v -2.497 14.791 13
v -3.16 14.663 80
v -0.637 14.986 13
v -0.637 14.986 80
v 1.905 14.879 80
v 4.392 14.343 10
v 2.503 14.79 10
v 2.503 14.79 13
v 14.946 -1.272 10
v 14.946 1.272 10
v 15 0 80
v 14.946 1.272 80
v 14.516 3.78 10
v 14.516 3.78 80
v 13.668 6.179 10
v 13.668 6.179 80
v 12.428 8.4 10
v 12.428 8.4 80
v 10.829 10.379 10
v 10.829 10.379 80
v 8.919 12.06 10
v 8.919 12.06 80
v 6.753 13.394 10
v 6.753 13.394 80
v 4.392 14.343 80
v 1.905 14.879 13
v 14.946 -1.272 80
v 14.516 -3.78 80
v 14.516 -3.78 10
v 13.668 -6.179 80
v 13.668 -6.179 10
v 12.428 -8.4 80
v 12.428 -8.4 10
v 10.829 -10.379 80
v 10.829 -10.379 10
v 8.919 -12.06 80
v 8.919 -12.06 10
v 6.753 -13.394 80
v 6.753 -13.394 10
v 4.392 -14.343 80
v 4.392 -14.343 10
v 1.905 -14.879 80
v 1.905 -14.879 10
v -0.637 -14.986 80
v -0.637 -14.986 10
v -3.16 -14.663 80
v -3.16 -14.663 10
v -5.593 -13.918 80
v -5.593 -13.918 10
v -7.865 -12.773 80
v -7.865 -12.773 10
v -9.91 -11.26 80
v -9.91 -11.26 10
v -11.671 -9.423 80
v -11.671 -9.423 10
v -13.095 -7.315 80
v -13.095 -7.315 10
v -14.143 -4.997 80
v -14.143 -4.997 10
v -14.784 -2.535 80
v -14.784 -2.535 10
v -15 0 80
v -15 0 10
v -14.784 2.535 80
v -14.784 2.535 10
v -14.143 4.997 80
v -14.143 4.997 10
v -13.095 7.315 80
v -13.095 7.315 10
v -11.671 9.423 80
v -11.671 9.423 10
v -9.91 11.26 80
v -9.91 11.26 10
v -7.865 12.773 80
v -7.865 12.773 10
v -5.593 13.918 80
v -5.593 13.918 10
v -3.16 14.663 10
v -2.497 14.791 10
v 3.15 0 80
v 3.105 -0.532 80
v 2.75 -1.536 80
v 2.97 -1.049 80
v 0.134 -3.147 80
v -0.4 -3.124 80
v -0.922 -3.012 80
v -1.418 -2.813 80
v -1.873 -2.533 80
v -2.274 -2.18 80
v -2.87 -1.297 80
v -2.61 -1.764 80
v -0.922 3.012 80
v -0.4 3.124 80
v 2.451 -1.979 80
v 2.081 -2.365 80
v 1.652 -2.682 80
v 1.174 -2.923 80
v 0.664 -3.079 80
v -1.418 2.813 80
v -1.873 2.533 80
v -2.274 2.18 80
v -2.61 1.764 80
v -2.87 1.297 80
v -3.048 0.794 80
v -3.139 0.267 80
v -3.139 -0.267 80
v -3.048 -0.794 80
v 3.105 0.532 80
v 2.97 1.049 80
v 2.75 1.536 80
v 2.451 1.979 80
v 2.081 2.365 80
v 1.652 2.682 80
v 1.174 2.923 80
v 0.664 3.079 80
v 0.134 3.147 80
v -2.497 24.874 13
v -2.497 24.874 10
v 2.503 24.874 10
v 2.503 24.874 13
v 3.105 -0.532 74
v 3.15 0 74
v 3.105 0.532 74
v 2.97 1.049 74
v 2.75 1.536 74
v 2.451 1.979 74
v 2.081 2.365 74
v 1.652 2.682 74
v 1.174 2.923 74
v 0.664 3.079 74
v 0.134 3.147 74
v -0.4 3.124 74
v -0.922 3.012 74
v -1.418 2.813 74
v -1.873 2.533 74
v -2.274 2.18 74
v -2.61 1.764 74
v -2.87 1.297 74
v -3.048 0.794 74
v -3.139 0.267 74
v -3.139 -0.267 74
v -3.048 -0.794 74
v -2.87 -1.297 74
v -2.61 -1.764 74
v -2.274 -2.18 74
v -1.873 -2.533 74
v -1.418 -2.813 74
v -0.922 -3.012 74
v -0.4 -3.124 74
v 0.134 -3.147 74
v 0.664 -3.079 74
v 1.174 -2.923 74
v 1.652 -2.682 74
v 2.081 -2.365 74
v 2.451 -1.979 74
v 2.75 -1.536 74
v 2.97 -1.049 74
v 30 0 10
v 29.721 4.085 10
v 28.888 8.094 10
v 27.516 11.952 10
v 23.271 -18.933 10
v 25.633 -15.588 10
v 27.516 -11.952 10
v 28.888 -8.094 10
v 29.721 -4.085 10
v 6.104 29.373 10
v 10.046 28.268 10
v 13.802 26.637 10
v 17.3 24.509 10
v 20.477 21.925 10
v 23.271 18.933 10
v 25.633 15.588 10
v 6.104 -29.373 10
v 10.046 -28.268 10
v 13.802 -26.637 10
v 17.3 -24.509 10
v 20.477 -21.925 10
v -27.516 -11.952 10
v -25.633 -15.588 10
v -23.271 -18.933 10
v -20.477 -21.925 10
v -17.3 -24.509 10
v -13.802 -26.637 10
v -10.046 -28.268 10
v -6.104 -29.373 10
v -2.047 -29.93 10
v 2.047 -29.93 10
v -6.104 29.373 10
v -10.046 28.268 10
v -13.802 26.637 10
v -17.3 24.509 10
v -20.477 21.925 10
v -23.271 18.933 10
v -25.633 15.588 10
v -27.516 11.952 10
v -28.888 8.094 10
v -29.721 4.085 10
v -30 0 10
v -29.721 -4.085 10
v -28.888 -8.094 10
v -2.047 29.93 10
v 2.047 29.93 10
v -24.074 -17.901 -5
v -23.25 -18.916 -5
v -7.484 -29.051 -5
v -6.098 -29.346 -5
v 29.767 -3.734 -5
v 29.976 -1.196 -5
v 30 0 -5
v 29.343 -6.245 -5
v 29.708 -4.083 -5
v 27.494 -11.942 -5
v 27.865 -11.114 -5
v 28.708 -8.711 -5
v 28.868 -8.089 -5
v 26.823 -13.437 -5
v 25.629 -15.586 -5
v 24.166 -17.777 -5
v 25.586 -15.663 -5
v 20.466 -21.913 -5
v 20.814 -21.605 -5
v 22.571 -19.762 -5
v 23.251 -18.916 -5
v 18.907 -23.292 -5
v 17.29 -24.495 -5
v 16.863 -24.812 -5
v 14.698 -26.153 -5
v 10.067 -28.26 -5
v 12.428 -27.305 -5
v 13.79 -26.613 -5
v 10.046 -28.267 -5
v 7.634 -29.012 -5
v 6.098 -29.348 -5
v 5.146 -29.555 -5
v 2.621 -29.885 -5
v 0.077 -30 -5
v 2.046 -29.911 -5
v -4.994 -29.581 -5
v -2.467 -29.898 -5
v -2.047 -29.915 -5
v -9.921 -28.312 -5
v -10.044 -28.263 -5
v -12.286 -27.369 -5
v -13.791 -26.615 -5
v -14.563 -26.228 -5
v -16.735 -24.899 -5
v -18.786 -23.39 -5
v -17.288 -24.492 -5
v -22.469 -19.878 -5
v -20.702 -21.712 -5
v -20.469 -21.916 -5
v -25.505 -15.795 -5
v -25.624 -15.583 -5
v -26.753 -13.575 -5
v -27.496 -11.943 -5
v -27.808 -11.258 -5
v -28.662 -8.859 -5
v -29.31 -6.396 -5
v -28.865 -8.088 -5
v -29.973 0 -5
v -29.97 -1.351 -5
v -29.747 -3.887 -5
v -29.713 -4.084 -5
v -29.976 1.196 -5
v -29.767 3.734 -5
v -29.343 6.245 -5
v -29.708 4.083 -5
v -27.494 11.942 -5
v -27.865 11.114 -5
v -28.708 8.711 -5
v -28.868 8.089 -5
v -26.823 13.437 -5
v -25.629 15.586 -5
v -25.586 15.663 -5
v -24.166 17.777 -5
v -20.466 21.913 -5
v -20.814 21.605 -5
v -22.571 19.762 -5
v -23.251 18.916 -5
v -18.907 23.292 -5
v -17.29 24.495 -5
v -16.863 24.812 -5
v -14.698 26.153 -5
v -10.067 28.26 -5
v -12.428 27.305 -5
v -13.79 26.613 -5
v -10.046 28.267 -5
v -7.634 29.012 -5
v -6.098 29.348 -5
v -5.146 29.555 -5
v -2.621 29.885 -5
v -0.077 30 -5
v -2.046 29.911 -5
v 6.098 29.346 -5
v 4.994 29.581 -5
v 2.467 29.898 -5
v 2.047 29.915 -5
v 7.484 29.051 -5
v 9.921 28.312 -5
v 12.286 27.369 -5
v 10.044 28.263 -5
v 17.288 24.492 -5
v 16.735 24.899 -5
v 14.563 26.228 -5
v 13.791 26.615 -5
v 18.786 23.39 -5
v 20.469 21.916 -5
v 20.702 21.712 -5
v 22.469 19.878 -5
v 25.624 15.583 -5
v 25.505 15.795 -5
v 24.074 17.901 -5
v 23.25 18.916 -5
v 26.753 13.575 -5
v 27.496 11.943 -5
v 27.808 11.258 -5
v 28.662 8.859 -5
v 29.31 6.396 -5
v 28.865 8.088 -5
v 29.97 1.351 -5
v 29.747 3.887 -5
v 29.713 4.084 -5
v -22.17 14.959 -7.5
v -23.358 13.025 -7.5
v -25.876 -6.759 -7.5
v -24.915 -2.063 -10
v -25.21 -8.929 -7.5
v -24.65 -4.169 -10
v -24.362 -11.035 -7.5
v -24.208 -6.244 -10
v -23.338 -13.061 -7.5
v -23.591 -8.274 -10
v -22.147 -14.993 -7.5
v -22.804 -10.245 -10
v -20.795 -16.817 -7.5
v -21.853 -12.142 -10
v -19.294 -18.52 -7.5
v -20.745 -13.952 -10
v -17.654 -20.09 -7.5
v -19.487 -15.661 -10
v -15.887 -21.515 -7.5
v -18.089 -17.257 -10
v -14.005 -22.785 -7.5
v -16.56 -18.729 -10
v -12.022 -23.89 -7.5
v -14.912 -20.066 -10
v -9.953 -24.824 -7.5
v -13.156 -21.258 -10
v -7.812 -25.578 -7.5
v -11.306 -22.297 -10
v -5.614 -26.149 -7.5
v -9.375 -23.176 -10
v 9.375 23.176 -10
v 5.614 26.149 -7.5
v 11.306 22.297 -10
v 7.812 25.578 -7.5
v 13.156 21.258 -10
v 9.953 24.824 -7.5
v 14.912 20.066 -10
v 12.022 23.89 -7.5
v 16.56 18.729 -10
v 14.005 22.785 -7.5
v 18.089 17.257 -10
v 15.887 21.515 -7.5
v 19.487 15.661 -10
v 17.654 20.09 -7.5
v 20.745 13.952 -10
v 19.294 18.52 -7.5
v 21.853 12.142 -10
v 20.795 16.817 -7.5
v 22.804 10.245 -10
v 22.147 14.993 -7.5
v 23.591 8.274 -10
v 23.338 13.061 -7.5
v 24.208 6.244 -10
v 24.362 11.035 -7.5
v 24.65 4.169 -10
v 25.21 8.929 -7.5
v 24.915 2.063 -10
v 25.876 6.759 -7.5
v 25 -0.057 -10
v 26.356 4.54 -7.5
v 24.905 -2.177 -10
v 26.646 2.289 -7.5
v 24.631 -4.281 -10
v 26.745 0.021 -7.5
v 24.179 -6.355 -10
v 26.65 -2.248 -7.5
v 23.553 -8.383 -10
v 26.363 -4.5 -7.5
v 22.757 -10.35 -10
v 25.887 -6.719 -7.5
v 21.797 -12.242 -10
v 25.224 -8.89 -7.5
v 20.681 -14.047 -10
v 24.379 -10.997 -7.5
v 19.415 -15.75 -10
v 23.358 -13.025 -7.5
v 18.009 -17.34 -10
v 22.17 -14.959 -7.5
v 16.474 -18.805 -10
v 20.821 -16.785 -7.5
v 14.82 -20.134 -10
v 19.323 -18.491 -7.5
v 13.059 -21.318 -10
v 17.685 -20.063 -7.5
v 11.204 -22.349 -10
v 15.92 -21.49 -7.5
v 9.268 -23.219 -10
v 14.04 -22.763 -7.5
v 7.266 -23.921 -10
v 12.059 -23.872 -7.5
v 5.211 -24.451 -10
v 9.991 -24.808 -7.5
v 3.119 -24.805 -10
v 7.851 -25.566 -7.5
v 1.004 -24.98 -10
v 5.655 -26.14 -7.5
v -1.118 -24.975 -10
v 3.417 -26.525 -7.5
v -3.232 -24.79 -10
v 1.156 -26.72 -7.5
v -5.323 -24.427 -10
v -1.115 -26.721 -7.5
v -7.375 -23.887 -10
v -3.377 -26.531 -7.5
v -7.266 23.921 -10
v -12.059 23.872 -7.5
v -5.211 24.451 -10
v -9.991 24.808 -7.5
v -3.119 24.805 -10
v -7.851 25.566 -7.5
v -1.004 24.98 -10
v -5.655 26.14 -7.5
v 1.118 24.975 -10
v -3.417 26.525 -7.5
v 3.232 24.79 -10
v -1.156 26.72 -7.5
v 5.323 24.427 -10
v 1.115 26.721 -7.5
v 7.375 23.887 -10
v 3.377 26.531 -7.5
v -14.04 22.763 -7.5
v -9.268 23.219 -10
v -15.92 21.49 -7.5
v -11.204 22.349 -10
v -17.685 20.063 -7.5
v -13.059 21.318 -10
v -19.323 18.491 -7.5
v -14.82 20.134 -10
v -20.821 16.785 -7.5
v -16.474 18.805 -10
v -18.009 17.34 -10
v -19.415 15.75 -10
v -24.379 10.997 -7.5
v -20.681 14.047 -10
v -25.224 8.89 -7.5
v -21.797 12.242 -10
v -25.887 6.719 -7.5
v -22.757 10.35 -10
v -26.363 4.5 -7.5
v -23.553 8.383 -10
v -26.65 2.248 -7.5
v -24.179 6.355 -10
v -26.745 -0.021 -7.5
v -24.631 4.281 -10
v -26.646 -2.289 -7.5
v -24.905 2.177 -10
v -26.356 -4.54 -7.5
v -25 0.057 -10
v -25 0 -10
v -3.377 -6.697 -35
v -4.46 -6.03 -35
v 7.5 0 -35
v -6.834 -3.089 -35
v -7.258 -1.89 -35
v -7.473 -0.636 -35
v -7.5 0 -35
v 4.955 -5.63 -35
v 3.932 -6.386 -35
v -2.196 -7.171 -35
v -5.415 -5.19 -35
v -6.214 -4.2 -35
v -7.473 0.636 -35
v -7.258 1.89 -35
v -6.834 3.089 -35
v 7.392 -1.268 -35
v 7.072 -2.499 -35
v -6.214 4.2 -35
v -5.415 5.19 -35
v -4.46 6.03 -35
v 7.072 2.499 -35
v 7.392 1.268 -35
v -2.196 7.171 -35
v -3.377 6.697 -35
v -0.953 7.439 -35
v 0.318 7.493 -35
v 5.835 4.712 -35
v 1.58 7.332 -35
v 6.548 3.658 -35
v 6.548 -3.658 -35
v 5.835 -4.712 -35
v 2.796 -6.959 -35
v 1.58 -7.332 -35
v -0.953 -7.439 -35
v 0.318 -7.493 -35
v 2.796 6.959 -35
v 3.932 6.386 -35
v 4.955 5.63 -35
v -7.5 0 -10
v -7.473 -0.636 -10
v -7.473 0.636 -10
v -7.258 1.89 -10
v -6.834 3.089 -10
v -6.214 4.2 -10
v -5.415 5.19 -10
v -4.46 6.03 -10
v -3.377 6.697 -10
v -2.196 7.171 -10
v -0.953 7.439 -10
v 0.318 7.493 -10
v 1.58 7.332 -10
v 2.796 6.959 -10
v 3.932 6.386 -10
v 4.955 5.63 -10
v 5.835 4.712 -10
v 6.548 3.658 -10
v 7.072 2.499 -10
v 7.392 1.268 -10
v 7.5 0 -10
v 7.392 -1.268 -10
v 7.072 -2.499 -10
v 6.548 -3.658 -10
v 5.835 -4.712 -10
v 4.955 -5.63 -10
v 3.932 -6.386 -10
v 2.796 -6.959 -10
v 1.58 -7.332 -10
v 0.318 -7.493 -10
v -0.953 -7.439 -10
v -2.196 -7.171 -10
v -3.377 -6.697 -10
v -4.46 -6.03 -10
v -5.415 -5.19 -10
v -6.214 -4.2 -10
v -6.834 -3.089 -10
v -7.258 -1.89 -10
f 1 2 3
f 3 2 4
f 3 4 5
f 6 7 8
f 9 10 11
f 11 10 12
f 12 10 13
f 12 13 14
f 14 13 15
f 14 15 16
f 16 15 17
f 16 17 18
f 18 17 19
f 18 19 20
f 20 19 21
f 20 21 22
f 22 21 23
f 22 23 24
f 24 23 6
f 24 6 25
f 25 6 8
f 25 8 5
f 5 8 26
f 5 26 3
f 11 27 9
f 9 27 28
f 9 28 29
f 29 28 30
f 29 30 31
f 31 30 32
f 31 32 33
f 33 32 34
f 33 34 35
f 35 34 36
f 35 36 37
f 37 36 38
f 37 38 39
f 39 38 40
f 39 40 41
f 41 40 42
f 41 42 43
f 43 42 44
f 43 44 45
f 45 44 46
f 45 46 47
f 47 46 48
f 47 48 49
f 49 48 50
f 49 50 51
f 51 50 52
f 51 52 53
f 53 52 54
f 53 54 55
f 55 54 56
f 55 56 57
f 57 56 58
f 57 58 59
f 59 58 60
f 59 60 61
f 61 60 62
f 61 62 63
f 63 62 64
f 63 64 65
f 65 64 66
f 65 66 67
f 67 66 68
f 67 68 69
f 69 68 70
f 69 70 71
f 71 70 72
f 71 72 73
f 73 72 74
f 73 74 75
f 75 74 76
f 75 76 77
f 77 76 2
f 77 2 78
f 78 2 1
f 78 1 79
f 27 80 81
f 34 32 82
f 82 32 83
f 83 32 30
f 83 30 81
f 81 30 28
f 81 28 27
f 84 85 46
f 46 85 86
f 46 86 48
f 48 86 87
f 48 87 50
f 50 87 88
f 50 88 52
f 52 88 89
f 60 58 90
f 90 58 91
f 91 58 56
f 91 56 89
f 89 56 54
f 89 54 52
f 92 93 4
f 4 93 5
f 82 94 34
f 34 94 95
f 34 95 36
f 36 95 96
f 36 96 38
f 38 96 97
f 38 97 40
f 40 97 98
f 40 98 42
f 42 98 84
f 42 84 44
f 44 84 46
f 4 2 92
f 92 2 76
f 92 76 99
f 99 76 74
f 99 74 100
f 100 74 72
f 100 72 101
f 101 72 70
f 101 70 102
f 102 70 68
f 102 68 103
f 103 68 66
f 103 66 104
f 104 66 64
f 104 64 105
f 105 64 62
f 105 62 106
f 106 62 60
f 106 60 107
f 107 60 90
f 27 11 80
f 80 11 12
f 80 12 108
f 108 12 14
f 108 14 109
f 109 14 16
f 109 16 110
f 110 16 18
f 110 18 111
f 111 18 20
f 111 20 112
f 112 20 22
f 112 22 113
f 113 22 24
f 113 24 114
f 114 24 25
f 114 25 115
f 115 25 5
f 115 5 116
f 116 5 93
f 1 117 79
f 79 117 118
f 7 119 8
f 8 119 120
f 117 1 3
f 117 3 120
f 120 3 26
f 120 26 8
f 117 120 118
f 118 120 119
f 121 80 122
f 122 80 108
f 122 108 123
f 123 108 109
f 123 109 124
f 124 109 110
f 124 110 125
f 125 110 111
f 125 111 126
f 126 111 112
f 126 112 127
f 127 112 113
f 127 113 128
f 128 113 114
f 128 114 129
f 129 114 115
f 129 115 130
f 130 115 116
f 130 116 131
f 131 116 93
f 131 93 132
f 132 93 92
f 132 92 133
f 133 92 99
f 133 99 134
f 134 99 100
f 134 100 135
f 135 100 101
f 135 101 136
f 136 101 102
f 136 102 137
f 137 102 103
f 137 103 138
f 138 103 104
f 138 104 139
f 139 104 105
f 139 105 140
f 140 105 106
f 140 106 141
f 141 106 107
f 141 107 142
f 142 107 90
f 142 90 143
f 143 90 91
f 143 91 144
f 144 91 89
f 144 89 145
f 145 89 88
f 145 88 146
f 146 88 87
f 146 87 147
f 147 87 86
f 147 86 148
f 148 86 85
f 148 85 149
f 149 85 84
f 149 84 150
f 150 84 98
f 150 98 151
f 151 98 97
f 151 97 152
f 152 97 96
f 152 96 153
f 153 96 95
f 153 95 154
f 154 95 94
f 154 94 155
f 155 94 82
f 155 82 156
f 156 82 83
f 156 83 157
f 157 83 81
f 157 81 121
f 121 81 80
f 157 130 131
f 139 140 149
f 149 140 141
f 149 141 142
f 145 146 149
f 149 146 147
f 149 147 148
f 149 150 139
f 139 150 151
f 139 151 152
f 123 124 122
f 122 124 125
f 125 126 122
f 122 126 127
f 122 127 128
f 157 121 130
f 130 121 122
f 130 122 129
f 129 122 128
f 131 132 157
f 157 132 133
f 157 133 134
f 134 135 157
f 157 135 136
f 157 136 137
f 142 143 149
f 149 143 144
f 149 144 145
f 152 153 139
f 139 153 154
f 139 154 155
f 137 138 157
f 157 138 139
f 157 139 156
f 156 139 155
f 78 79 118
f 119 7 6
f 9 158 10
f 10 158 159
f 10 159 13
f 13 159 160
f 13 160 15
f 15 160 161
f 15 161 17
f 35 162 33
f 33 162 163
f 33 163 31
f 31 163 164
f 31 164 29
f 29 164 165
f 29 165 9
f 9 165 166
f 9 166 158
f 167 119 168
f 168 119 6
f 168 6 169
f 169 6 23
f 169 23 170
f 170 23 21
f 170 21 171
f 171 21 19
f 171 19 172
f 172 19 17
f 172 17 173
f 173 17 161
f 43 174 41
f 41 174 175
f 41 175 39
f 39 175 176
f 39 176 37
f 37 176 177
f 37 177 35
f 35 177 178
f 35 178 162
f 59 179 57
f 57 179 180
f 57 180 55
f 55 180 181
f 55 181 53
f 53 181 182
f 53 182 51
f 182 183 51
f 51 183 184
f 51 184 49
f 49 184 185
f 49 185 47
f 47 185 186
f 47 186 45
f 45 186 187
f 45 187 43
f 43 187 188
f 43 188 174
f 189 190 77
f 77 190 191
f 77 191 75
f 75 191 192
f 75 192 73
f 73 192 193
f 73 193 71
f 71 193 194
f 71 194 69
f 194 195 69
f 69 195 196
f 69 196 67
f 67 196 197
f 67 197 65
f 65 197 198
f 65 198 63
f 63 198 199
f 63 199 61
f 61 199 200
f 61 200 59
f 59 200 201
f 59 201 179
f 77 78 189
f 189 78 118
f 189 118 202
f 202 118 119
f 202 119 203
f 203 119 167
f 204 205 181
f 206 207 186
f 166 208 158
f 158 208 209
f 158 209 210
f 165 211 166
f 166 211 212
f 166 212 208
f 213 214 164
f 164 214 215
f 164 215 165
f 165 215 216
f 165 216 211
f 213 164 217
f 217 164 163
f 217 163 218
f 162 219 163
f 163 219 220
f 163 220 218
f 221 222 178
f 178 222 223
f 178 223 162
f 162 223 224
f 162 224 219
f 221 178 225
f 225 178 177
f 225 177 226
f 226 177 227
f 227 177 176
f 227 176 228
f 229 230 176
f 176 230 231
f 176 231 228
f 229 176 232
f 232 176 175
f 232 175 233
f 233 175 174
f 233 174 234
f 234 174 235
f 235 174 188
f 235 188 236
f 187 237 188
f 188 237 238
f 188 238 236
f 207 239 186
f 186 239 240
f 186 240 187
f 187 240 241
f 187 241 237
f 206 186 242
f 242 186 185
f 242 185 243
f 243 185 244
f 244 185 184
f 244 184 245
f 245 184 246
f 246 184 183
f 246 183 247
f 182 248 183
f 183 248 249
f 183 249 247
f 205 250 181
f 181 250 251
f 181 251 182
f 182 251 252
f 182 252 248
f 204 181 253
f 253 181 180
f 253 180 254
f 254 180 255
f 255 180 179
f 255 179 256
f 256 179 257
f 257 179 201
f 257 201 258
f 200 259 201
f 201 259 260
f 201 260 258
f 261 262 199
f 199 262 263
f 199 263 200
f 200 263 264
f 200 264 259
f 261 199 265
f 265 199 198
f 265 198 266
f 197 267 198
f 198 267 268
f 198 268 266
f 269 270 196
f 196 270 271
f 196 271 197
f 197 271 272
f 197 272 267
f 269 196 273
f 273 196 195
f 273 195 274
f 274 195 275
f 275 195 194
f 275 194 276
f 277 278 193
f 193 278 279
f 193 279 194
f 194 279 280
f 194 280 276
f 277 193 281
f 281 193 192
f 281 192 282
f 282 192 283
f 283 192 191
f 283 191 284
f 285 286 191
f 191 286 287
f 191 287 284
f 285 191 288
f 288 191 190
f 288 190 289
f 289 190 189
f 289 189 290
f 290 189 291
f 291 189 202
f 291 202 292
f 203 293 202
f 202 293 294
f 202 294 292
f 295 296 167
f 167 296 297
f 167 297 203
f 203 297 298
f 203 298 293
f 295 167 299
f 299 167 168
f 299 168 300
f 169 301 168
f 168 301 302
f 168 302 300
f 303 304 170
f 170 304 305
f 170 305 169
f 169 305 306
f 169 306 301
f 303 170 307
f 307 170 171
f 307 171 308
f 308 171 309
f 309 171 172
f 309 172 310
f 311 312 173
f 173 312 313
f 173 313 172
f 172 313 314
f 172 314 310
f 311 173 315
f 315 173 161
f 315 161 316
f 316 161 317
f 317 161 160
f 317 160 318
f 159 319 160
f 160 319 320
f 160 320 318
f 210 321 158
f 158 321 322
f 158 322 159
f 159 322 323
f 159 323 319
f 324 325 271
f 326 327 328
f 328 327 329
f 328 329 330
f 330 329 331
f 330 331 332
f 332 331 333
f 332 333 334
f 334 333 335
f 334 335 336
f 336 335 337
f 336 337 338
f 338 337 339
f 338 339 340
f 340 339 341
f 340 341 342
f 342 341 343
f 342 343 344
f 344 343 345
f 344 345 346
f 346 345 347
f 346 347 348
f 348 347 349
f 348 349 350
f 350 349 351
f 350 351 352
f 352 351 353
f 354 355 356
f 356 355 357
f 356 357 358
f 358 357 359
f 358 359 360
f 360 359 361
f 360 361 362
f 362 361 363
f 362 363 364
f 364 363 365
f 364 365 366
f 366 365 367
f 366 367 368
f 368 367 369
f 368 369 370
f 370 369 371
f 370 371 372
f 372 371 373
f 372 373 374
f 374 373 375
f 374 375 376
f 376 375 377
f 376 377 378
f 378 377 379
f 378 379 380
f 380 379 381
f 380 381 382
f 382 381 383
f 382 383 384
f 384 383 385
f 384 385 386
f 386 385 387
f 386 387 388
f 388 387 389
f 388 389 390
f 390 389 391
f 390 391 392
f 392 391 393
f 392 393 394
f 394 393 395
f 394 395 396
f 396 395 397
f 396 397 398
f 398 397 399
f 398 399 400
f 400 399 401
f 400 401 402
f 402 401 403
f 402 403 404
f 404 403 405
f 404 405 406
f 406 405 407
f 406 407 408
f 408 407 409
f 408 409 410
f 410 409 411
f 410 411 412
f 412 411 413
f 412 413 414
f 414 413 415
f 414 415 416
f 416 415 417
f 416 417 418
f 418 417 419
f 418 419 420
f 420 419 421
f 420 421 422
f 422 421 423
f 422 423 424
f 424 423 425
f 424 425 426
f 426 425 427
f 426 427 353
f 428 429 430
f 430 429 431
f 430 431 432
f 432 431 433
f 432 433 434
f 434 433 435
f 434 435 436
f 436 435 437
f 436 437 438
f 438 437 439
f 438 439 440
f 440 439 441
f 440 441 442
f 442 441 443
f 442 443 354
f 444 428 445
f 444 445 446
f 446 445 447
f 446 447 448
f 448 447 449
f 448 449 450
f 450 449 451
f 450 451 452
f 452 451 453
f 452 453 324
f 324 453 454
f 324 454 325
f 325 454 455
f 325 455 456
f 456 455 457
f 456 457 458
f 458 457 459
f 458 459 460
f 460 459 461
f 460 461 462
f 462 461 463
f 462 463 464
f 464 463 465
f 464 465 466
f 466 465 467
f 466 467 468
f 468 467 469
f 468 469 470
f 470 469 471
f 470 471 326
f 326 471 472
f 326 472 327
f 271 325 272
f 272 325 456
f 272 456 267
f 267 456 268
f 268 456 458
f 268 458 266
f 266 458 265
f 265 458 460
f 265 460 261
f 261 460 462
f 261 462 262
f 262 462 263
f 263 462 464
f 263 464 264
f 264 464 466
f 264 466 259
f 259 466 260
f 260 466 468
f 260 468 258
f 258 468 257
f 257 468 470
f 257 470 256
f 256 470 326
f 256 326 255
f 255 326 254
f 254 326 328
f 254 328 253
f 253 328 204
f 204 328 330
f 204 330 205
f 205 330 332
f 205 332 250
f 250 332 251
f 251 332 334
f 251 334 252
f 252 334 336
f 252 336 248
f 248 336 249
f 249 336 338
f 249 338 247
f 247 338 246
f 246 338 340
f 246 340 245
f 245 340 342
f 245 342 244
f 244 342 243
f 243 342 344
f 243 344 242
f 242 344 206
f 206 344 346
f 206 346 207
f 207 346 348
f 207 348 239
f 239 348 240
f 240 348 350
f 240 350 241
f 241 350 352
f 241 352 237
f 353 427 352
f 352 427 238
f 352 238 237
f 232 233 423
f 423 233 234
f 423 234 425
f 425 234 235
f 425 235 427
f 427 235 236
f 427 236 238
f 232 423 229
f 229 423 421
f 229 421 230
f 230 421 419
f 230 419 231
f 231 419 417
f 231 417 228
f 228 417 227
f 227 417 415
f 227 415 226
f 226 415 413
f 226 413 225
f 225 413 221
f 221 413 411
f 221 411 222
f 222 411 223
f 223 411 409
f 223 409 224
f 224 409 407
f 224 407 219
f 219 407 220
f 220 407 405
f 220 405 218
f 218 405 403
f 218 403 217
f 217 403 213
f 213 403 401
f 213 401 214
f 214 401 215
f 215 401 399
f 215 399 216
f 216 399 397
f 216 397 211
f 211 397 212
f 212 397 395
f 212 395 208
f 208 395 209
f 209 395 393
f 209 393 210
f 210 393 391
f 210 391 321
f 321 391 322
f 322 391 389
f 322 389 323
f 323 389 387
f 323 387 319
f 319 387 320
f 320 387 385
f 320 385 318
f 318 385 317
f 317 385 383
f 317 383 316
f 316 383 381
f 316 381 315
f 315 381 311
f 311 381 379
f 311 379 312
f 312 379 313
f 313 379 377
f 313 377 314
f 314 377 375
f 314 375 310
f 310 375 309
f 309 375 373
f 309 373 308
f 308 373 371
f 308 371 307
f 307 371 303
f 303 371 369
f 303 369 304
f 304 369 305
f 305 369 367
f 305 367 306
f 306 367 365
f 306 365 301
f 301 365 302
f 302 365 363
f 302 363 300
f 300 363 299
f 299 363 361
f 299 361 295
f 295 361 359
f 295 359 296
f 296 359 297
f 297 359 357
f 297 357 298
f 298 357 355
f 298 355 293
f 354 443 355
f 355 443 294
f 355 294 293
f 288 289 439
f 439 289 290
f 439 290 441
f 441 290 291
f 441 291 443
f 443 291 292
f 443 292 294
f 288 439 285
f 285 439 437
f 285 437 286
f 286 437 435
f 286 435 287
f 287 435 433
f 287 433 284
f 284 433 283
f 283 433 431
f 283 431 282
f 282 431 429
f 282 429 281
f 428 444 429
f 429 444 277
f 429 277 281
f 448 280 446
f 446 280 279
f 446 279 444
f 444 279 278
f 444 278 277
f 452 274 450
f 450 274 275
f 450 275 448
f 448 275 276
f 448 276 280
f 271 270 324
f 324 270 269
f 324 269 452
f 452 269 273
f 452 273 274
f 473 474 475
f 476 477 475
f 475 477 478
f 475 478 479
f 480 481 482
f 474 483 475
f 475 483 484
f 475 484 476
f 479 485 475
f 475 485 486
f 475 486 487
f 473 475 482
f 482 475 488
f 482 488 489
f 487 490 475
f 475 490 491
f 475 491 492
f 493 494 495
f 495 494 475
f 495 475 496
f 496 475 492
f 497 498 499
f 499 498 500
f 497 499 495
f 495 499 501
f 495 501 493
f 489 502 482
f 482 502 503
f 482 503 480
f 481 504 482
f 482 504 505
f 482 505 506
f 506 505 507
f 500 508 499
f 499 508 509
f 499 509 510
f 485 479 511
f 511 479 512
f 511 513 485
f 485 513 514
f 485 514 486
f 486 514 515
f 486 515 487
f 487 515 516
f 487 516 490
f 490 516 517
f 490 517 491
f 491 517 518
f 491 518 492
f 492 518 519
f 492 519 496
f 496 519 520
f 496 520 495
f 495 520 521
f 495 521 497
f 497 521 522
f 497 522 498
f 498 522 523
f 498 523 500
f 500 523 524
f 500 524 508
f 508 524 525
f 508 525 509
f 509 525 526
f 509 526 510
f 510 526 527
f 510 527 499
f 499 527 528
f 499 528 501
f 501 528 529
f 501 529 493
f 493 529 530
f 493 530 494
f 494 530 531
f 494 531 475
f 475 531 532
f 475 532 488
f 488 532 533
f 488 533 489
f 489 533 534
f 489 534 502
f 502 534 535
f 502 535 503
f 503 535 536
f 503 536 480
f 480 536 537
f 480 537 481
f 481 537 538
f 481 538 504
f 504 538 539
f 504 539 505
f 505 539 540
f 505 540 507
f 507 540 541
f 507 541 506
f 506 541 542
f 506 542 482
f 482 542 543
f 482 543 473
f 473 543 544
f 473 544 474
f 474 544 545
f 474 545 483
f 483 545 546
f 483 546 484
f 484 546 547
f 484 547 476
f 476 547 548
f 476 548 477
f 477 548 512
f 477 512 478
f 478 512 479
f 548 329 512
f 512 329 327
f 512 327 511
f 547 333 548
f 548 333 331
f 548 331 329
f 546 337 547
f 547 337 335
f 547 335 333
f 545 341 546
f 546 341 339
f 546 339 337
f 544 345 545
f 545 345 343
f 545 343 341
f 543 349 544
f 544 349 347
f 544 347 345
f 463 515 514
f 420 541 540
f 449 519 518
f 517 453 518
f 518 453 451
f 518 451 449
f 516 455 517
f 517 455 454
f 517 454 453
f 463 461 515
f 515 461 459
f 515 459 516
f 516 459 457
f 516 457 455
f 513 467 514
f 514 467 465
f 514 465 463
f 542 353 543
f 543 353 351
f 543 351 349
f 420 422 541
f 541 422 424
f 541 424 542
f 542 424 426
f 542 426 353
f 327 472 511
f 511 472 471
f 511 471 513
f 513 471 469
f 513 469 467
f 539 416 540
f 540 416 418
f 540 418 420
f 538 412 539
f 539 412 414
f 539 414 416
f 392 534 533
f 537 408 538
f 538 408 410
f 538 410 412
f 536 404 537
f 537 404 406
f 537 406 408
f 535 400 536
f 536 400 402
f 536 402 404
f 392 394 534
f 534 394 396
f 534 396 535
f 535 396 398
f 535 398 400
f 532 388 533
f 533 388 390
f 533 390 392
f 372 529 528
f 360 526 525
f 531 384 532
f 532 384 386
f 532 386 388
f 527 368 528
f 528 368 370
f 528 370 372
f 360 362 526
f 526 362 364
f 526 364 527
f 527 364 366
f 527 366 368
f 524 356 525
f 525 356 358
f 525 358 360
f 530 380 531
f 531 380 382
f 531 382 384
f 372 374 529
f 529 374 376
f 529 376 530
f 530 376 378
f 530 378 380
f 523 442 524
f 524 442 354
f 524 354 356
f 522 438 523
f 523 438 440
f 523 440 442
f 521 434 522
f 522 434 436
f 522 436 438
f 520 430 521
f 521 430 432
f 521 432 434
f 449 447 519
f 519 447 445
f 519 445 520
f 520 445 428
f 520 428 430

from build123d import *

# Parameters (mm, degrees)
SKETCH1_R           = 15
BOSS_EXTRUDE1_DEPTH = 80
SKETCH1_2_R         = 15
SKETCH2_R           = 25
SKETCH3_R           = 7.5
BOSS_EXTRUDE2_DEPTH = 25
SKETCH4_W           = 5
SKETCH4_H           = 25
BOSS_EXTRUDE3_DEPTH = 3
SKETCH5_R           = 3.15
CUT_EXTRUDE1_DEPTH  = 6
SKETCH6_R           = 30
BOSS_EXTRUDE4_DEPTH = 15


with BuildPart() as part:
    # Sketch1 → Boss-Extrude1 (new body)
    with BuildSketch(Plane.XY):
        Circle(SKETCH1_R)
    extrude(amount=BOSS_EXTRUDE1_DEPTH)

    # Sketch1<2> → Loft1 section 0
    with BuildSketch(Plane.XY):
        Circle(SKETCH1_2_R)
    # Sketch2 → Loft1 section 1
    with BuildSketch(Plane(origin=(0, 0, -10), x_dir=(-1, 0, 0), z_dir=(0, 0, -1))):
        Circle(SKETCH2_R)
    loft()

    # Sketch3 → Boss-Extrude2 (add)
    with BuildSketch(Plane(origin=(0, 0, -10), x_dir=(-1, 0, 0), z_dir=(0, 0, -1))):
        Circle(SKETCH3_R)
    extrude(amount=BOSS_EXTRUDE2_DEPTH)

    # Sketch4 → Boss-Extrude3 (add)
    with BuildSketch(Plane.XY.offset(10)):
        with Locations((0.003158662, 12.374368268)):
            Rectangle(SKETCH4_W, SKETCH4_H)
    extrude(amount=BOSS_EXTRUDE3_DEPTH)

    # Sketch5 → Cut-Extrude1 (cut)
    with BuildSketch(Plane.XY.offset(80)):
        Circle(SKETCH5_R)
    extrude(amount=-CUT_EXTRUDE1_DEPTH, mode=Mode.SUBTRACT)

    # Sketch6 → Boss-Extrude4 (add)
    with BuildSketch(Plane.XY.offset(10)):
        Circle(SKETCH6_R)
    extrude(amount=-BOSS_EXTRUDE4_DEPTH)

    # Loft3: read off the stored shape, not the designer's step
    # Loft3: loft between two sections, ruled curve by curve
    loft3_from = [
        Edge.make_bspline([(-27.865450574, 11.113805123, -5), (-5.637840328, 66.844706271, -5), (50.09306082, 44.617096025, -5), (27.865450574, -11.113805123, -5), (5.637840328, -66.844706271, -5), (-50.09306082, -44.617096025, -5), (-27.865450574, 11.113805123, -5)], [0, 0, 0, 0, 0.5, 0.5, 0.5, 1, 1, 1, 1], 3, [1, 0.333333333, 0.333333333, 1, 0.333333333, 0.333333333, 1]),
    ]
    loft3_to = [
        Edge.make_bspline([(-16.473801558, 18.804623427, -10), (21.135445295, 51.752226543, -10), (54.083048412, 14.14297969, -10), (16.473801558, -18.804623427, -10), (-21.135445295, -51.752226543, -10), (-54.083048412, -14.14297969, -10), (-16.473801558, 18.804623427, -10)], [0, 0, 0, 0, 0.5, 0.5, 0.5, 1, 1, 1, 1], 3, [1, 0.333333333, 0.333333333, 1, 0.333333333, 0.333333333, 1]),
    ]
    loft3 = Solid(Shell([*[Face.make_surface_from_curves(loft3_from[k], loft3_to[k]) for k in range(1)], Face(Wire(loft3_from)), Face(Wire(loft3_to))]))
    add(loft3)


solid = part.part
